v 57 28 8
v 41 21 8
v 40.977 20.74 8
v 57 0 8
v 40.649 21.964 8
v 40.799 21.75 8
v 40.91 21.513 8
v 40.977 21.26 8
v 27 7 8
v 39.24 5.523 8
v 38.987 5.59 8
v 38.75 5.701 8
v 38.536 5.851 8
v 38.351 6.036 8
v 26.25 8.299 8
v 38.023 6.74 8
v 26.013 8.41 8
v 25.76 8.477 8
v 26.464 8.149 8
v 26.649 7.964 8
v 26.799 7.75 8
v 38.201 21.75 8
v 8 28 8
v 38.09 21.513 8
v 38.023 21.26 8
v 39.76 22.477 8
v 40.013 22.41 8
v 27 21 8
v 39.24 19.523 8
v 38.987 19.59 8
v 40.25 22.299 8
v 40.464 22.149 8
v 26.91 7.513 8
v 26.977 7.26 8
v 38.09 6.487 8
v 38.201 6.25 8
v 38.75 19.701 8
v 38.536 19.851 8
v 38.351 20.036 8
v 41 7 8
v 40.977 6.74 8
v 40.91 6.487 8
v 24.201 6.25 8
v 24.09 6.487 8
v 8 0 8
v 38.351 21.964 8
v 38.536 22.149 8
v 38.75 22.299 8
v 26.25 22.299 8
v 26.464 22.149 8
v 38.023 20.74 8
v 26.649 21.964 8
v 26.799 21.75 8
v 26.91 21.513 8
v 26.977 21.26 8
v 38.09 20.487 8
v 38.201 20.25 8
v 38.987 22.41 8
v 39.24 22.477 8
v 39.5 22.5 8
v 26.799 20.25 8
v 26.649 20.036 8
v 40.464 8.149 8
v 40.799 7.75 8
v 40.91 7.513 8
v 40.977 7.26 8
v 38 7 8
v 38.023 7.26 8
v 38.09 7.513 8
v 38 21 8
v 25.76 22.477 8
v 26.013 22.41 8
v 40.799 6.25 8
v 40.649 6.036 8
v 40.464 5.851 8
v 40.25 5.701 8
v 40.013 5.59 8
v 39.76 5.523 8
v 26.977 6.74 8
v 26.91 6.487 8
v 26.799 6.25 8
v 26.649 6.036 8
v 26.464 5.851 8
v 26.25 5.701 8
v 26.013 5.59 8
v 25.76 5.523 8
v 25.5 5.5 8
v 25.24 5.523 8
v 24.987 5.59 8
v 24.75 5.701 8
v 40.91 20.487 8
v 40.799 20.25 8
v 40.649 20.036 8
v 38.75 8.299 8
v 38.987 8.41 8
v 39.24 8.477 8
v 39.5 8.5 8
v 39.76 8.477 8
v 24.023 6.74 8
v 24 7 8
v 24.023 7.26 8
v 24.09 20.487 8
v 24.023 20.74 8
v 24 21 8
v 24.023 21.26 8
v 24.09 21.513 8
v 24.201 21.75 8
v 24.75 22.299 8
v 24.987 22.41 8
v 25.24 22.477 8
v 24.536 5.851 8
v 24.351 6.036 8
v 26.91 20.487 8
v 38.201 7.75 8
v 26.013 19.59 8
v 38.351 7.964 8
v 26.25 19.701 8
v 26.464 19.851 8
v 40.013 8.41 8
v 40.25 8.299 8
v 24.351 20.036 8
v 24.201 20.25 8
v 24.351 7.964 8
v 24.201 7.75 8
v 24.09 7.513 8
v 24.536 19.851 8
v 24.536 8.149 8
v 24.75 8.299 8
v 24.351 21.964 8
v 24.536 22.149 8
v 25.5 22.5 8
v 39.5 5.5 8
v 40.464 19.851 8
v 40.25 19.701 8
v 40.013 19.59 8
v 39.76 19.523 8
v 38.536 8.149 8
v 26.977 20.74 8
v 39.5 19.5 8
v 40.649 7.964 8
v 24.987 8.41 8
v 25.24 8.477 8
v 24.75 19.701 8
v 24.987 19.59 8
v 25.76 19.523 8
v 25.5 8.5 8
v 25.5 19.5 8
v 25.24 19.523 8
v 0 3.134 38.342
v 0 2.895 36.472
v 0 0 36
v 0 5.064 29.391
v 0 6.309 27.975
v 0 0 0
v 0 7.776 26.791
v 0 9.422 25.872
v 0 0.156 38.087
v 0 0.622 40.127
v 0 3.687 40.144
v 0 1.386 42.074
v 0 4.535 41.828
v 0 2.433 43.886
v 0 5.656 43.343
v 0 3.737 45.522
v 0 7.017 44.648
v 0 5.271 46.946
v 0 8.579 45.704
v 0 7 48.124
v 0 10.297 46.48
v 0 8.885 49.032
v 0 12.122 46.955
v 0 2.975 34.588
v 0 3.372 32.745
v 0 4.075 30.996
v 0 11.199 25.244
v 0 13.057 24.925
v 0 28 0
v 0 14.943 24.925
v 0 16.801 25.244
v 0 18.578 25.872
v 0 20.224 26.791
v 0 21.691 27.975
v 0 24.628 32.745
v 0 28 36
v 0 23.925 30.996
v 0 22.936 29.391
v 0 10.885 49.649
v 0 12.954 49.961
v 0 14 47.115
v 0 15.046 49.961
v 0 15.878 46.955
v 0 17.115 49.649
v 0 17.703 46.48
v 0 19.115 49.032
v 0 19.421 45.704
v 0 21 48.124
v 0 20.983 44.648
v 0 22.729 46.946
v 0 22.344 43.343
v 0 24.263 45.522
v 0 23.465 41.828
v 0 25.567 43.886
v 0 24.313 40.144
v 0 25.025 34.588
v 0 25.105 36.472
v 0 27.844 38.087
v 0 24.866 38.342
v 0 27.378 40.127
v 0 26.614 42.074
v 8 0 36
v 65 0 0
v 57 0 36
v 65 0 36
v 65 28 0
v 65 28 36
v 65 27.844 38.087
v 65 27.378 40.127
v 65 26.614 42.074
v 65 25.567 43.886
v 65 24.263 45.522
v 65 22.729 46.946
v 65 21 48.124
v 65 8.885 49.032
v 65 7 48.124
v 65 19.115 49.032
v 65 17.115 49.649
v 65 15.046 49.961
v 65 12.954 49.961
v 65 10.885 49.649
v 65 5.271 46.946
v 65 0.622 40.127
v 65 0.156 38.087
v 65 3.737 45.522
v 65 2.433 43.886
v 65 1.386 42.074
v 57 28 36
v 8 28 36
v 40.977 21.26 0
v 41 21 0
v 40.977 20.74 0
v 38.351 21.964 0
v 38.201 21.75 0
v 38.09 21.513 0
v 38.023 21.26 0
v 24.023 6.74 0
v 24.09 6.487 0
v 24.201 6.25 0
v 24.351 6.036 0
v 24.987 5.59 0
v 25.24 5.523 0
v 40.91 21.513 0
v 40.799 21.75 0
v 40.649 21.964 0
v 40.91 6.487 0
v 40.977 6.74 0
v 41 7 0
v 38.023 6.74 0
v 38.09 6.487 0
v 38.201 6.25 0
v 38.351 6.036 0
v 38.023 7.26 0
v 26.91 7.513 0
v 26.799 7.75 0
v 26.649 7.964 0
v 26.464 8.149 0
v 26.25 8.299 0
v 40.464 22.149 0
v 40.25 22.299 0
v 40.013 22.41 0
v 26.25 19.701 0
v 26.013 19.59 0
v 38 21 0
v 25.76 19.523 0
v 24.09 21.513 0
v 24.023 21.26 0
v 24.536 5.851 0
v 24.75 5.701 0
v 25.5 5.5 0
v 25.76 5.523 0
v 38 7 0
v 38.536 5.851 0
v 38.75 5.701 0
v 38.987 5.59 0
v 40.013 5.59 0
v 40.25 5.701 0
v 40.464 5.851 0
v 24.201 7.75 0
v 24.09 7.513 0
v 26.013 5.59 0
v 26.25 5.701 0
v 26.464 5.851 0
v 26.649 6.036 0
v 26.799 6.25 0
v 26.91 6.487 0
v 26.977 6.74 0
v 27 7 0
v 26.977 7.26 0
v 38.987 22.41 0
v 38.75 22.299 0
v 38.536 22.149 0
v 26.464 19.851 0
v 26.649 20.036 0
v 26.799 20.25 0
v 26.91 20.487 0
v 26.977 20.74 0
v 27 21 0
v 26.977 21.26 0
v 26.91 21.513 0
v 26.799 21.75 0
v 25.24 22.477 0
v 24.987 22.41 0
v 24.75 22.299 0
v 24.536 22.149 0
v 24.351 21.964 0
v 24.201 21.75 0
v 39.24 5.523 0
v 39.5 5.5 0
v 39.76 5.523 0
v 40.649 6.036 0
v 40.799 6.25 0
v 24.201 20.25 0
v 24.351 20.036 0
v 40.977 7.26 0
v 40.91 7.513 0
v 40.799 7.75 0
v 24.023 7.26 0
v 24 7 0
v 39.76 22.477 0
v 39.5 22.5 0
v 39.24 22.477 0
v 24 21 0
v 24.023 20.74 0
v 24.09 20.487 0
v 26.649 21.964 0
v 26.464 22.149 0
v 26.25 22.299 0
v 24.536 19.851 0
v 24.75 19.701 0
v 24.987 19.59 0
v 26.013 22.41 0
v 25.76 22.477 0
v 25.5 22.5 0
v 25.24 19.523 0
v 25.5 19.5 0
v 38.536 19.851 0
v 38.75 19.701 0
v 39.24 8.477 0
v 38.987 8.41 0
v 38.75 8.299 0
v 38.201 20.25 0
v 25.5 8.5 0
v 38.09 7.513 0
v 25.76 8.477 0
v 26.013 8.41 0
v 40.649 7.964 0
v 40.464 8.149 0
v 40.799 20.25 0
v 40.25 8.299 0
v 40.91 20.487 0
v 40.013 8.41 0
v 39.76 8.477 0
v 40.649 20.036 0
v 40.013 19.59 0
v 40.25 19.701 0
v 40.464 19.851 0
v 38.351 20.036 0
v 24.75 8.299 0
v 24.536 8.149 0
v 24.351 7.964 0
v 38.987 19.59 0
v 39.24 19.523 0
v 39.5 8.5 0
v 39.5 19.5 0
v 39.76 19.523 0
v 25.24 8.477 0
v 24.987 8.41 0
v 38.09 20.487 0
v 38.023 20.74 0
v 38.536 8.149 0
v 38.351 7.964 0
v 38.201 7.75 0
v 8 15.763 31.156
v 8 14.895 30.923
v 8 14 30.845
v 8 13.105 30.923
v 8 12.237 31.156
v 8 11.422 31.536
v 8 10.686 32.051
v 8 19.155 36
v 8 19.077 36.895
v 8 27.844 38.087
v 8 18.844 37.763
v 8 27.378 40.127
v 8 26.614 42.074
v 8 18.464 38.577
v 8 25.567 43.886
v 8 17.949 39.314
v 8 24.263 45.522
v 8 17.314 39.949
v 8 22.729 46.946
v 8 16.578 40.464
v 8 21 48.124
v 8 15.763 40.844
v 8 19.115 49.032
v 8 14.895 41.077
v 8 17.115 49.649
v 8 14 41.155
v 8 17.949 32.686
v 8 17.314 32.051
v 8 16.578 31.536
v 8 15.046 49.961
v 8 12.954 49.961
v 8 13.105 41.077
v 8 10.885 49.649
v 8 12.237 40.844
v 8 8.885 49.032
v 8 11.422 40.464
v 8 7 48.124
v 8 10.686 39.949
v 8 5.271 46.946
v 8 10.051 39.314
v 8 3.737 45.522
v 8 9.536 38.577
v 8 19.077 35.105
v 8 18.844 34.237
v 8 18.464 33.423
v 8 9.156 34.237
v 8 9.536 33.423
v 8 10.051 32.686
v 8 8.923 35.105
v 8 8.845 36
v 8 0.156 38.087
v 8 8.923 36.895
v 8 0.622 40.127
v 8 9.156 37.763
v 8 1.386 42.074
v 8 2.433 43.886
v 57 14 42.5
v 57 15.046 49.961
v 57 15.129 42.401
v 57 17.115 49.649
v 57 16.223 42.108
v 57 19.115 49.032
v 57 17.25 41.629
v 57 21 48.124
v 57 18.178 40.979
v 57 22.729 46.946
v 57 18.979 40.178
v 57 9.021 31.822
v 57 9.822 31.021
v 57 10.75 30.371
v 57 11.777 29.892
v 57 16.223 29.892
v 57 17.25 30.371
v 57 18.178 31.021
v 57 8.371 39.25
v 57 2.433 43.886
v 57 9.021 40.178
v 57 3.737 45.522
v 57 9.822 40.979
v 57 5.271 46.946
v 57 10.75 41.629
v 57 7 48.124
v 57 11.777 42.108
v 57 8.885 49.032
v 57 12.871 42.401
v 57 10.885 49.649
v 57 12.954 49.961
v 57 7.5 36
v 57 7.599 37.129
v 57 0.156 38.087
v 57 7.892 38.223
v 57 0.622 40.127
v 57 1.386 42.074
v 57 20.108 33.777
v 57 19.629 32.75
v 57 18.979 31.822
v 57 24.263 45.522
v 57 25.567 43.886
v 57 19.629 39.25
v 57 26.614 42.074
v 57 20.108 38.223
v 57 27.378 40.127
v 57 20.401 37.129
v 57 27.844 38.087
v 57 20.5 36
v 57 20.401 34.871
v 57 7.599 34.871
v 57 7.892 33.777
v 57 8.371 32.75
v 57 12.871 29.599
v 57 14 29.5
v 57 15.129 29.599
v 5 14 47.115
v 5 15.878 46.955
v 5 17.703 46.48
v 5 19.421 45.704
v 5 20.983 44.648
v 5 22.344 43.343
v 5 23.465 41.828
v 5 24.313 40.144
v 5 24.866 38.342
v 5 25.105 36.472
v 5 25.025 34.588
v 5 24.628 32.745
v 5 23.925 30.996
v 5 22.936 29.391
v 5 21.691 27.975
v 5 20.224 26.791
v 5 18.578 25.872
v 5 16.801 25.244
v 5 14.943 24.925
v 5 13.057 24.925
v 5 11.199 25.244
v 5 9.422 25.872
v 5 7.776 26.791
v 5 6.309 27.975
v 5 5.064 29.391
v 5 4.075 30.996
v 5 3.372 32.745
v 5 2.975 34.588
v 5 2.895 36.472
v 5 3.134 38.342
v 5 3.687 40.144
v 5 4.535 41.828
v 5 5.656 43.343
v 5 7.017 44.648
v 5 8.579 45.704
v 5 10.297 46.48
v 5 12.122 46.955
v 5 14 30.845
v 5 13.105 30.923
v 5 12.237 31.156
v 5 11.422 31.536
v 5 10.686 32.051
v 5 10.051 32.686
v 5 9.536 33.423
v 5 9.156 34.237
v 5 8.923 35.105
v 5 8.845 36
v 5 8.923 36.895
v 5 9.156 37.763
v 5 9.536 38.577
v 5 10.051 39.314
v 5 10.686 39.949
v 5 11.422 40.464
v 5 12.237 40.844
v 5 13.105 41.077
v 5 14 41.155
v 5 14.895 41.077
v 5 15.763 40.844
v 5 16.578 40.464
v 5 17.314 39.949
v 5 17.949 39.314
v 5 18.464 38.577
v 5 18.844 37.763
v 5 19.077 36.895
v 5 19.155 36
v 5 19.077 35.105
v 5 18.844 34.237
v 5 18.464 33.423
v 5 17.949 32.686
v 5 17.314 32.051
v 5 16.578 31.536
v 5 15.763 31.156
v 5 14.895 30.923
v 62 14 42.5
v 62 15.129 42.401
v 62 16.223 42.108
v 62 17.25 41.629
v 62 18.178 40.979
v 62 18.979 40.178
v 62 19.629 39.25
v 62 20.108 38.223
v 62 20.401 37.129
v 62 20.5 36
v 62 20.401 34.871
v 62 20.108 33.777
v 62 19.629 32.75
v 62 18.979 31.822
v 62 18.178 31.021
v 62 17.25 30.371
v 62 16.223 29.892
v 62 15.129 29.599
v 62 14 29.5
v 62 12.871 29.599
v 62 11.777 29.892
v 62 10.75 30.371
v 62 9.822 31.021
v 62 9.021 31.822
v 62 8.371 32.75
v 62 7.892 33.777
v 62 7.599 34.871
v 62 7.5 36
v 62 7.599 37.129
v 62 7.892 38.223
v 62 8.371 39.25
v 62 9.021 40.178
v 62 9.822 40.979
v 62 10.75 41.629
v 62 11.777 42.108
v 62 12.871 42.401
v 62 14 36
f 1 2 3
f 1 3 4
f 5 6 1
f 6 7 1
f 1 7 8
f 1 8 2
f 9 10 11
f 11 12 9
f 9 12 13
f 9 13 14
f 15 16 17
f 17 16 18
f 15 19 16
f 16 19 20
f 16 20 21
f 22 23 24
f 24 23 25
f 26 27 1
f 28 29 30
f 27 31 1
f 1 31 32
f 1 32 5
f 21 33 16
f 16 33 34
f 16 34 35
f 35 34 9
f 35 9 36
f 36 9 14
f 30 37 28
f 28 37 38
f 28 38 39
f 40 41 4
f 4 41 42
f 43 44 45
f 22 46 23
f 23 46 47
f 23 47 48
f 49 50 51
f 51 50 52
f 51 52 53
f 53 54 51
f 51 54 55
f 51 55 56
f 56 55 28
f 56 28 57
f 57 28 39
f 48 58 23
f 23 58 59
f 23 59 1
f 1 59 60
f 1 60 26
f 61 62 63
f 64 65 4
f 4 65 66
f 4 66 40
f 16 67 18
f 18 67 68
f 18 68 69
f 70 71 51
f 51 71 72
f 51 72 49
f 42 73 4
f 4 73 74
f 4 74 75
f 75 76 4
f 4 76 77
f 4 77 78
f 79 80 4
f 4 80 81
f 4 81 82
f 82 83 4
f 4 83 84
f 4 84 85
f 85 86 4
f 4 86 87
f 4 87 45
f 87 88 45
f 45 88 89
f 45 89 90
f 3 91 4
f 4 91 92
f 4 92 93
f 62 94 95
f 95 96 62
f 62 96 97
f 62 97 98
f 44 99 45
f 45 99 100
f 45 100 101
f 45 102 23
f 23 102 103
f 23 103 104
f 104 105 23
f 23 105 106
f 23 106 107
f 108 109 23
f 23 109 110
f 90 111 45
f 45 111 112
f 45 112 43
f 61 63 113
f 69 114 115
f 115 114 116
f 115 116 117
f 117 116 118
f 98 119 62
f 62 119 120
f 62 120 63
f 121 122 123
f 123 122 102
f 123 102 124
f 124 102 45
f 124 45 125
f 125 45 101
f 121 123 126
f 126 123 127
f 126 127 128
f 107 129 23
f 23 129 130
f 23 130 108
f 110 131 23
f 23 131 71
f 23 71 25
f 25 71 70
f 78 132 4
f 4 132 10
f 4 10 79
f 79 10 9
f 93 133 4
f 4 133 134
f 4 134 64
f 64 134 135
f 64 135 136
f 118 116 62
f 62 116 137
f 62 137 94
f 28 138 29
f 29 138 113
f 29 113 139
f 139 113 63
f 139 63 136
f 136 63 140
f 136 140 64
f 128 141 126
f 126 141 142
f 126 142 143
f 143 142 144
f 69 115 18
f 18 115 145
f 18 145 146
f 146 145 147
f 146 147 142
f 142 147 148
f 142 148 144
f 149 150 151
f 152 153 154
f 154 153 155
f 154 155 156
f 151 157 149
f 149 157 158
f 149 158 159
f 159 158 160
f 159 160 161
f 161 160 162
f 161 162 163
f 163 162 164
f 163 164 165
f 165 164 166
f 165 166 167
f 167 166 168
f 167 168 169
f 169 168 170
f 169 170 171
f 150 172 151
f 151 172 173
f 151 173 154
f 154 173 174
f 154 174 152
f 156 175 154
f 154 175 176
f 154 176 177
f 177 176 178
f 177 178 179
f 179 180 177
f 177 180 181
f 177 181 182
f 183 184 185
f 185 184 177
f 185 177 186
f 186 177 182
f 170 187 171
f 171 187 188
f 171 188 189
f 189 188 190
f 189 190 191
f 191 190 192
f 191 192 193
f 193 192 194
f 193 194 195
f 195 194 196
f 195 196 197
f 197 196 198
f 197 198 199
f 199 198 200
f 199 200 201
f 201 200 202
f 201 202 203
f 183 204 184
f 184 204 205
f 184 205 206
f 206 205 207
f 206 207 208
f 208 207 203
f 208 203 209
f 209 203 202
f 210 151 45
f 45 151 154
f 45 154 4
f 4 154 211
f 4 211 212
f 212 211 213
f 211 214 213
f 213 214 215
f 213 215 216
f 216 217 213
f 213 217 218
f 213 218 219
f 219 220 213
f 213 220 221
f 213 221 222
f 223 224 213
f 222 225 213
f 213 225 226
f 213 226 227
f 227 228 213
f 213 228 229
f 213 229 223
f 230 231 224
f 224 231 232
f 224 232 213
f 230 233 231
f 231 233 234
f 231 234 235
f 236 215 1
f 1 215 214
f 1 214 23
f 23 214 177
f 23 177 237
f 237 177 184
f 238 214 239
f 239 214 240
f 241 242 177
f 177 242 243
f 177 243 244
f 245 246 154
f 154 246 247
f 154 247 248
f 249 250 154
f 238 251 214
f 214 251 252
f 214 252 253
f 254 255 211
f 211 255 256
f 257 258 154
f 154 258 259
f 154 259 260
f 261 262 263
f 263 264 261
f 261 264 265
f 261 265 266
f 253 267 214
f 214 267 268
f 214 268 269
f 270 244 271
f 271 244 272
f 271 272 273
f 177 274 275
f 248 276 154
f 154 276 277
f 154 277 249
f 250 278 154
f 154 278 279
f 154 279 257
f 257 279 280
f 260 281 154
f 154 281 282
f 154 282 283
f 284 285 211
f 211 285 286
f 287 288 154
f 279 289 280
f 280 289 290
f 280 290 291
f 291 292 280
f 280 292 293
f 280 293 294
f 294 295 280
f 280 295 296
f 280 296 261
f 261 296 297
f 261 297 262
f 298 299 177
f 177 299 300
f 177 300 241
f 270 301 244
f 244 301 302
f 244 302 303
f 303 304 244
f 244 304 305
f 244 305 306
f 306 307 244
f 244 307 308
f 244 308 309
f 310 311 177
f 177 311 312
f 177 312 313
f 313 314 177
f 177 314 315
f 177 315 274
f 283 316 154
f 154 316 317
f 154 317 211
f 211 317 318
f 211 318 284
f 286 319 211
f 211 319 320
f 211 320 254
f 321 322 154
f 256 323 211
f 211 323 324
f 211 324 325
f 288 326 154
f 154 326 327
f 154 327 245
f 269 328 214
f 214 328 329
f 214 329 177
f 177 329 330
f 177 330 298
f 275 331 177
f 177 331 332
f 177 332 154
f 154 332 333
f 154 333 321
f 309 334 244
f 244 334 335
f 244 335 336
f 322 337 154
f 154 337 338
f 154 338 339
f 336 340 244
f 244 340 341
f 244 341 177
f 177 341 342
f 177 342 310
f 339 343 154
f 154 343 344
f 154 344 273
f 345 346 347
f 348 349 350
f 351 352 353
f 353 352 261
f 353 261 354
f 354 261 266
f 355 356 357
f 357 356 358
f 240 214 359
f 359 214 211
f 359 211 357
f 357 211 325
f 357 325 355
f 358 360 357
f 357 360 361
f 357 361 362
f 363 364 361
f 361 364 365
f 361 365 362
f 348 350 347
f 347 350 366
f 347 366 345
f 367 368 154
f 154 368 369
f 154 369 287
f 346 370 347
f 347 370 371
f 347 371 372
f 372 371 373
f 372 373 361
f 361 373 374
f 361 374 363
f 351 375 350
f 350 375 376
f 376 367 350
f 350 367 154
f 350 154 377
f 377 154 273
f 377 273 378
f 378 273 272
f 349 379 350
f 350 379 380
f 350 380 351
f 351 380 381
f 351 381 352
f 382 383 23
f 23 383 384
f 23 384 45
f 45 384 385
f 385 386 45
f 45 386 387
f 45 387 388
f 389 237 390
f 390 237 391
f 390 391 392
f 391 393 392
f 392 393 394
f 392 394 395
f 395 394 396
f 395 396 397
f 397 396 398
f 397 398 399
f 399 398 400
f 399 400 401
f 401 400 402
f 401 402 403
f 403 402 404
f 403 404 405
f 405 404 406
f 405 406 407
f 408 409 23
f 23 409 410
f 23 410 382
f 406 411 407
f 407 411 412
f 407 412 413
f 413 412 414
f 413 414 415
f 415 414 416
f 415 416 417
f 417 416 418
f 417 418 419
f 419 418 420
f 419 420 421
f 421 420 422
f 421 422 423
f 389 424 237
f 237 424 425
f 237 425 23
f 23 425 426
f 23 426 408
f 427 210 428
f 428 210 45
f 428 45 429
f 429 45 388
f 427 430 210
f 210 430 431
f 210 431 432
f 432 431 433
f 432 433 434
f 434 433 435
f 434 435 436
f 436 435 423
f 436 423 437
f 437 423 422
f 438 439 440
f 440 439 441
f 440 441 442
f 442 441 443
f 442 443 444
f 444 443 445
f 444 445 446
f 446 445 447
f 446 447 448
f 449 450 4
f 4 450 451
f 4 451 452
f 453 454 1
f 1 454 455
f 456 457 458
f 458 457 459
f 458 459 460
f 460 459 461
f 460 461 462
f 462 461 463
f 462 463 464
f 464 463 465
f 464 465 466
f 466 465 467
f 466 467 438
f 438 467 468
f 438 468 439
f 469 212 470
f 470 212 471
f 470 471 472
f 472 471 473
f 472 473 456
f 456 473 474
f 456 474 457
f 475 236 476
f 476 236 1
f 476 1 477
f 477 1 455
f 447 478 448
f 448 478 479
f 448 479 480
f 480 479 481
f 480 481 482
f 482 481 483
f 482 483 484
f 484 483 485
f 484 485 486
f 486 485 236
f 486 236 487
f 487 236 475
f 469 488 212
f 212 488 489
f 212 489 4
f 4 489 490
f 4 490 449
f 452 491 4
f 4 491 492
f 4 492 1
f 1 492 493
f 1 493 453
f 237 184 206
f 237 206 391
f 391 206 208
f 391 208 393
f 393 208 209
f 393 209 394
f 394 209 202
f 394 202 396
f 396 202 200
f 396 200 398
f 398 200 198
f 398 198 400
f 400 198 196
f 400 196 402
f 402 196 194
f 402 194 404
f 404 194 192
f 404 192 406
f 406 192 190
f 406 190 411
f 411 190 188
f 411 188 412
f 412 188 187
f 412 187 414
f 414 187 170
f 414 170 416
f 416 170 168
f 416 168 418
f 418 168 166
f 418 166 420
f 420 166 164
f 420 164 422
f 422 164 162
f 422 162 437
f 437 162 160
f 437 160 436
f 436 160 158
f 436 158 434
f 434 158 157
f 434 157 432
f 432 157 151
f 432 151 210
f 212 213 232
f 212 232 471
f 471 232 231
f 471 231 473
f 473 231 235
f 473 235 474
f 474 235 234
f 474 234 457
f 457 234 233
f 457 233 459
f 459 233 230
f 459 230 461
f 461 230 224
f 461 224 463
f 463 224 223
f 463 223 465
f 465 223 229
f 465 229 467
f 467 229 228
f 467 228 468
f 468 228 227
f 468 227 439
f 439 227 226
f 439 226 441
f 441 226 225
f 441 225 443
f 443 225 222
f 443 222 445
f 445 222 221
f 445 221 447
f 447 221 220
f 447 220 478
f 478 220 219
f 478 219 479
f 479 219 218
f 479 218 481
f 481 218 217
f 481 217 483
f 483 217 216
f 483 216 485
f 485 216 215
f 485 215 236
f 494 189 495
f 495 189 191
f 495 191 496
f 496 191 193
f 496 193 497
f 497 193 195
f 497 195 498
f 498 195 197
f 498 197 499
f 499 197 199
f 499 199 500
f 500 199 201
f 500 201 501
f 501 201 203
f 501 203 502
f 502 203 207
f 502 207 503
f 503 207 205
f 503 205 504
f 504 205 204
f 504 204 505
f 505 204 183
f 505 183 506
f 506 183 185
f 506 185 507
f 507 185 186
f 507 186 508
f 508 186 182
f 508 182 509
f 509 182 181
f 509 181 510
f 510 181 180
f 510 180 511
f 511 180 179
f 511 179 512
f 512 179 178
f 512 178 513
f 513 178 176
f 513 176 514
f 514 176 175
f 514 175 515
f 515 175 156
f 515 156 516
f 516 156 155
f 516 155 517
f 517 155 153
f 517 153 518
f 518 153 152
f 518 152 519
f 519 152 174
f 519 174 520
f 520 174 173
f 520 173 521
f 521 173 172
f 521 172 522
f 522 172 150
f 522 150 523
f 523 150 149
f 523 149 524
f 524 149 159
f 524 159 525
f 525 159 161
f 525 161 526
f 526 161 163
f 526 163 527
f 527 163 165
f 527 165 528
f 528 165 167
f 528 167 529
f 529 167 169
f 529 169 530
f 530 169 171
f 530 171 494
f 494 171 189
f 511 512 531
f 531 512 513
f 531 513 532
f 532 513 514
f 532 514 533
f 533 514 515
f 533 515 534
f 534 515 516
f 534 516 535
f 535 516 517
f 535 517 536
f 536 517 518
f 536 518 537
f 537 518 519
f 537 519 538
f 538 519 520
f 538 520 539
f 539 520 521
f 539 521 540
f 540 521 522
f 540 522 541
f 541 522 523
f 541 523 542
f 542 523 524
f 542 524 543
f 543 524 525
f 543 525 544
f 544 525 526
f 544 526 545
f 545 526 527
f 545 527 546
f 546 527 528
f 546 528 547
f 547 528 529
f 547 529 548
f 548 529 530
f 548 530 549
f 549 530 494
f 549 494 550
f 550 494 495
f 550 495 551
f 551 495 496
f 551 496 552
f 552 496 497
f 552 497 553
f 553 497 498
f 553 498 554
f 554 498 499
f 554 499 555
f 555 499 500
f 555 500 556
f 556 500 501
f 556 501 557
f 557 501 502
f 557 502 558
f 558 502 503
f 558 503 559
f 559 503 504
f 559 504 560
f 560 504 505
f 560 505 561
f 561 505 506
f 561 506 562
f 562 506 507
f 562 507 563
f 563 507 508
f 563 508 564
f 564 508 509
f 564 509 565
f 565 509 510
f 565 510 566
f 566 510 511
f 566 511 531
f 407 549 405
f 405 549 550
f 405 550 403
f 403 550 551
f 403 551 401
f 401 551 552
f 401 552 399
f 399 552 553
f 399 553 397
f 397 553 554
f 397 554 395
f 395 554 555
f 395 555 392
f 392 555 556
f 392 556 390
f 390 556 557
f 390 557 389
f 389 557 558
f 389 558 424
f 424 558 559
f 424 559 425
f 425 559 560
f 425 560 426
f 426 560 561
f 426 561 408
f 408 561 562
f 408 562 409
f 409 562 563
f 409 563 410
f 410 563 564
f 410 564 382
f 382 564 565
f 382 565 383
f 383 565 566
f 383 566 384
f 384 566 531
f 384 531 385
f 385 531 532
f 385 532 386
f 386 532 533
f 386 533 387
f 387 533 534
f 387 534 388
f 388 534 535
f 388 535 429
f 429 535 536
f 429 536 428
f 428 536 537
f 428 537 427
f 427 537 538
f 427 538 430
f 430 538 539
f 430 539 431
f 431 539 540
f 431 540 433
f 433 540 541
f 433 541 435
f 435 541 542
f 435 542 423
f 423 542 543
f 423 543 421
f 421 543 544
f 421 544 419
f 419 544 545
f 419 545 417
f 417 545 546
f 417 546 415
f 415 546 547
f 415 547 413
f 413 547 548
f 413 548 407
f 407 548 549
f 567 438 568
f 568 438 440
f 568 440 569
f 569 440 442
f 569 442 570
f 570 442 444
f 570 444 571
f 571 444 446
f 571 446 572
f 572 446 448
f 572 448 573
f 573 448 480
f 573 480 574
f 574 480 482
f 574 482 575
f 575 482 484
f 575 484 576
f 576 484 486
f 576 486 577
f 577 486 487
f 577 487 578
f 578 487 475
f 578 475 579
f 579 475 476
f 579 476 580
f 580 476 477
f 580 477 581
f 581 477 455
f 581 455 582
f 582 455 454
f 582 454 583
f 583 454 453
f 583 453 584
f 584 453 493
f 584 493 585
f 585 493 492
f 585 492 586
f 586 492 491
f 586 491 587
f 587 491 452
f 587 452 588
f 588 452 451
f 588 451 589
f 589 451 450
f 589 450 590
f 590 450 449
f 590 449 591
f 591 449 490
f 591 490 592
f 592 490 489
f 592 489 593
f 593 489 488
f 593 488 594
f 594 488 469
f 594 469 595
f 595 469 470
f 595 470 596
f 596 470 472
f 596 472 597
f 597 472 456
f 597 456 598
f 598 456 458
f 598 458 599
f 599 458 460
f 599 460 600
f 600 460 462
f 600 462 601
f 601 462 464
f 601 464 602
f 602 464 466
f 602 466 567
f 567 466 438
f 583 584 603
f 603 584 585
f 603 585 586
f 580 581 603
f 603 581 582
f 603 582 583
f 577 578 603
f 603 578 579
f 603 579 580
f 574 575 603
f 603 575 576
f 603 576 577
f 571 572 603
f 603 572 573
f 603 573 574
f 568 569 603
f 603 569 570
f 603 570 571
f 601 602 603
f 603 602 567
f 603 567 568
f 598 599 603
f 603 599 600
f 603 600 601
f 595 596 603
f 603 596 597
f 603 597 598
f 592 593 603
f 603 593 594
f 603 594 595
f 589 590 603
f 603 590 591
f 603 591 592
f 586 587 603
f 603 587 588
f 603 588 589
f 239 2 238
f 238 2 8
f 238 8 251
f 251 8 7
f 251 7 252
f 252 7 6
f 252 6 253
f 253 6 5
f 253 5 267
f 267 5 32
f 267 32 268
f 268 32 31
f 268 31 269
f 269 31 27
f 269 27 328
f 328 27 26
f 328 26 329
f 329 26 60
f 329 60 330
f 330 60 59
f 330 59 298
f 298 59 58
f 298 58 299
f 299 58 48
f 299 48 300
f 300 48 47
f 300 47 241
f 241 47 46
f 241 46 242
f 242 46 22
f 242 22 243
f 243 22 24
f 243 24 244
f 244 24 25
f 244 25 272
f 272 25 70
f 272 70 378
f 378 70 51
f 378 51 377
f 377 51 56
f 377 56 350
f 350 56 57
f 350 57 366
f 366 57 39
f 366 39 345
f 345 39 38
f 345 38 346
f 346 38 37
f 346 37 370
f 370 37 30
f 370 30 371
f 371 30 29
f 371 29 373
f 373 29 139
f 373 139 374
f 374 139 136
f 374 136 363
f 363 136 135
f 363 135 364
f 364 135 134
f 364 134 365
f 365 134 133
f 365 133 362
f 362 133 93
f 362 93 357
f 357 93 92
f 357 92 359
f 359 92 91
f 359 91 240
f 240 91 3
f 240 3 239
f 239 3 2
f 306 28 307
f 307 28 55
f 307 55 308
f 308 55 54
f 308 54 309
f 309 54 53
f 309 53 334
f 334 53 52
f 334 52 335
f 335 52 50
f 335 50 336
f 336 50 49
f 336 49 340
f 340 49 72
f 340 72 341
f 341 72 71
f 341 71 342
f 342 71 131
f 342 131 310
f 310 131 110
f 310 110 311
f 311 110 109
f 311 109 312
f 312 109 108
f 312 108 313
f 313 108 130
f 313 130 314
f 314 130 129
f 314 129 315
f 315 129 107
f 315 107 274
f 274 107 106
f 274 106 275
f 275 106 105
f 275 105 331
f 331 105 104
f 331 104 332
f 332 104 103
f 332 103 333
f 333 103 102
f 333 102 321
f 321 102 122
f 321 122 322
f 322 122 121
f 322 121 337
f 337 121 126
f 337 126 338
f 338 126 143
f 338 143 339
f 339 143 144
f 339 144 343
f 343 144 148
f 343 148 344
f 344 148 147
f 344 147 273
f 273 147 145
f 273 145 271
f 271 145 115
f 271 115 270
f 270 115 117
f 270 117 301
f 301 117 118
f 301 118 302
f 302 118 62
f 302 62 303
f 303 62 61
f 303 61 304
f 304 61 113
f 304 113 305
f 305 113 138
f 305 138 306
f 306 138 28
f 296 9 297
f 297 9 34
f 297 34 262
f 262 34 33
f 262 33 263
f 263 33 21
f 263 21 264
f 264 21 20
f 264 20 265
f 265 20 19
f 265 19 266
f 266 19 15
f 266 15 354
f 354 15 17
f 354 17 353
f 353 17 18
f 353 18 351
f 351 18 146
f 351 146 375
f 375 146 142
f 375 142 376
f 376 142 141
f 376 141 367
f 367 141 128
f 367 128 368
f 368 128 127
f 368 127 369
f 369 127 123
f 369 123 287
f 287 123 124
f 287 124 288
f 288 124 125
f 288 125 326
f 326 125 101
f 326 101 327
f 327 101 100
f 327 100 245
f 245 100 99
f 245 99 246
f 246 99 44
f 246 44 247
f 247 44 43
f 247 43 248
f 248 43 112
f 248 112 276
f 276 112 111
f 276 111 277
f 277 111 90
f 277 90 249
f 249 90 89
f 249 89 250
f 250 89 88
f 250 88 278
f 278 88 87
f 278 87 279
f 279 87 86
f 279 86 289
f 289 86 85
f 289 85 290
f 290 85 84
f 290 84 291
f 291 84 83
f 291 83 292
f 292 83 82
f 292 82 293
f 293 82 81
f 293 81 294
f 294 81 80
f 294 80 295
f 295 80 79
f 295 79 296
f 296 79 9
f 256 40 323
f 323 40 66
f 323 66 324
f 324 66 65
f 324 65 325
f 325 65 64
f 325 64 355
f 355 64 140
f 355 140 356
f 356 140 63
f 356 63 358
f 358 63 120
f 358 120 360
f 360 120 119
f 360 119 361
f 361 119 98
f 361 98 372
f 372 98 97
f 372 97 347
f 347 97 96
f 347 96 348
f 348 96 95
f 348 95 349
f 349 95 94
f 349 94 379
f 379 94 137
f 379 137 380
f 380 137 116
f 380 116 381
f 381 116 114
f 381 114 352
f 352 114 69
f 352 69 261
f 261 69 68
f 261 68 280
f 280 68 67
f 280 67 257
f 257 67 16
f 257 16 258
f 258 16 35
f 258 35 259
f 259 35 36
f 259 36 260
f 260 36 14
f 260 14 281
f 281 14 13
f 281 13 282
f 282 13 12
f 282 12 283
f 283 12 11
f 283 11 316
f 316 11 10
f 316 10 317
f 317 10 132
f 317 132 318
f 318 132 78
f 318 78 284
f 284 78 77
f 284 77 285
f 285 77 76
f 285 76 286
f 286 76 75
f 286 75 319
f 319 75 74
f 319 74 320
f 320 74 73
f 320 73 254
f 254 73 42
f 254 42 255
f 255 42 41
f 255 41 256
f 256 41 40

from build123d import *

# Parameters (mm, degrees)
CROQUIS1_W              = 65
CROQUIS1_H              = 28
SALIENTE_EXTRUIR1_DEPTH = 8
CROQUIS2_W              = 8
CROQUIS2_H              = 28
SALIENTE_EXTRUIR2_DEPTH = 28
CROQUIS3_R              = 14
SALIENTE_EXTRUIR3_DEPTH = 8
CROQUIS4_R              = 14
SALIENTE_EXTRUIR4_DEPTH = 8
CROQUIS5_R              = 11.115
CORTAR_EXTRUIR1_DEPTH   = 5
CROQUIS6_R              = 5.155
CORTAR_EXTRUIR2_DEPTH   = 8
CORTAR_EXTRUIR3_START   = -8
CROQUIS7_R              = 6.5
CORTAR_EXTRUIR3_DEPTH   = 5
CROQUIS8_R              = 1.5
CORTAR_EXTRUIR4_DEPTH   = 8


with BuildPart() as part:
    # Croquis1 → Saliente-Extruir1 (new body)
    with BuildSketch(Plane.XY):
        with Locations((32.5, 14)):
            Rectangle(CROQUIS1_W, CROQUIS1_H)
    extrude(amount=SALIENTE_EXTRUIR1_DEPTH)

    # Croquis2 → Saliente-Extruir2 (add)
    with BuildSketch(Plane.XY.offset(8)):
        with Locations((4, 14)):
            Rectangle(CROQUIS2_W, CROQUIS2_H)
        with Locations((61, 14)):
            Rectangle(CROQUIS2_W, CROQUIS2_H)
    extrude(amount=SALIENTE_EXTRUIR2_DEPTH)

    # Croquis3 → Saliente-Extruir3 (add)
    with BuildSketch(Plane.ZY):
        with Locations((36, 14)):
            Circle(CROQUIS3_R)
    extrude(amount=-SALIENTE_EXTRUIR3_DEPTH)

    # Croquis4 → Saliente-Extruir4 (add)
    with BuildSketch(Plane(origin=(65, 0, 0), x_dir=(0, 0, -1), z_dir=(1, 0, 0))):
        with Locations((-36, 14)):
            Circle(CROQUIS4_R)
    extrude(amount=-SALIENTE_EXTRUIR4_DEPTH)

    # Croquis5 → Cortar-Extruir1 (cut)
    with BuildSketch(Plane.ZY):
        with Locations((36, 14)):
            Circle(CROQUIS5_R)
    extrude(amount=-CORTAR_EXTRUIR1_DEPTH, mode=Mode.SUBTRACT)

    # Croquis6 → Cortar-Extruir2 (cut)
    with BuildSketch(Plane.ZY):
        with Locations((36, 14)):
            Circle(CROQUIS6_R)
    extrude(amount=-CORTAR_EXTRUIR2_DEPTH, mode=Mode.SUBTRACT)

    # Croquis7 → Cortar-Extruir3 (cut)
    with BuildSketch(Plane(origin=(65, 0, 0), x_dir=(0, 0, -1), z_dir=(1, 0, 0)).offset(CORTAR_EXTRUIR3_START)):
        with Locations((-36, 14)):
            Circle(CROQUIS7_R)
    extrude(amount=CORTAR_EXTRUIR3_DEPTH, mode=Mode.SUBTRACT)

    # Croquis8 → Cortar-Extruir4 (cut)
    with BuildSketch(Plane.XY.offset(8)):
        with Locations((39.5, 21)):
            Circle(CROQUIS8_R)
        with Locations((25.5, 21)):
            Circle(CROQUIS8_R)
        with Locations((25.5, 7)):
            Circle(CROQUIS8_R)
        with Locations((39.5, 7)):
            Circle(CROQUIS8_R)
    extrude(amount=-CORTAR_EXTRUIR4_DEPTH, mode=Mode.SUBTRACT)


solid = part.part
